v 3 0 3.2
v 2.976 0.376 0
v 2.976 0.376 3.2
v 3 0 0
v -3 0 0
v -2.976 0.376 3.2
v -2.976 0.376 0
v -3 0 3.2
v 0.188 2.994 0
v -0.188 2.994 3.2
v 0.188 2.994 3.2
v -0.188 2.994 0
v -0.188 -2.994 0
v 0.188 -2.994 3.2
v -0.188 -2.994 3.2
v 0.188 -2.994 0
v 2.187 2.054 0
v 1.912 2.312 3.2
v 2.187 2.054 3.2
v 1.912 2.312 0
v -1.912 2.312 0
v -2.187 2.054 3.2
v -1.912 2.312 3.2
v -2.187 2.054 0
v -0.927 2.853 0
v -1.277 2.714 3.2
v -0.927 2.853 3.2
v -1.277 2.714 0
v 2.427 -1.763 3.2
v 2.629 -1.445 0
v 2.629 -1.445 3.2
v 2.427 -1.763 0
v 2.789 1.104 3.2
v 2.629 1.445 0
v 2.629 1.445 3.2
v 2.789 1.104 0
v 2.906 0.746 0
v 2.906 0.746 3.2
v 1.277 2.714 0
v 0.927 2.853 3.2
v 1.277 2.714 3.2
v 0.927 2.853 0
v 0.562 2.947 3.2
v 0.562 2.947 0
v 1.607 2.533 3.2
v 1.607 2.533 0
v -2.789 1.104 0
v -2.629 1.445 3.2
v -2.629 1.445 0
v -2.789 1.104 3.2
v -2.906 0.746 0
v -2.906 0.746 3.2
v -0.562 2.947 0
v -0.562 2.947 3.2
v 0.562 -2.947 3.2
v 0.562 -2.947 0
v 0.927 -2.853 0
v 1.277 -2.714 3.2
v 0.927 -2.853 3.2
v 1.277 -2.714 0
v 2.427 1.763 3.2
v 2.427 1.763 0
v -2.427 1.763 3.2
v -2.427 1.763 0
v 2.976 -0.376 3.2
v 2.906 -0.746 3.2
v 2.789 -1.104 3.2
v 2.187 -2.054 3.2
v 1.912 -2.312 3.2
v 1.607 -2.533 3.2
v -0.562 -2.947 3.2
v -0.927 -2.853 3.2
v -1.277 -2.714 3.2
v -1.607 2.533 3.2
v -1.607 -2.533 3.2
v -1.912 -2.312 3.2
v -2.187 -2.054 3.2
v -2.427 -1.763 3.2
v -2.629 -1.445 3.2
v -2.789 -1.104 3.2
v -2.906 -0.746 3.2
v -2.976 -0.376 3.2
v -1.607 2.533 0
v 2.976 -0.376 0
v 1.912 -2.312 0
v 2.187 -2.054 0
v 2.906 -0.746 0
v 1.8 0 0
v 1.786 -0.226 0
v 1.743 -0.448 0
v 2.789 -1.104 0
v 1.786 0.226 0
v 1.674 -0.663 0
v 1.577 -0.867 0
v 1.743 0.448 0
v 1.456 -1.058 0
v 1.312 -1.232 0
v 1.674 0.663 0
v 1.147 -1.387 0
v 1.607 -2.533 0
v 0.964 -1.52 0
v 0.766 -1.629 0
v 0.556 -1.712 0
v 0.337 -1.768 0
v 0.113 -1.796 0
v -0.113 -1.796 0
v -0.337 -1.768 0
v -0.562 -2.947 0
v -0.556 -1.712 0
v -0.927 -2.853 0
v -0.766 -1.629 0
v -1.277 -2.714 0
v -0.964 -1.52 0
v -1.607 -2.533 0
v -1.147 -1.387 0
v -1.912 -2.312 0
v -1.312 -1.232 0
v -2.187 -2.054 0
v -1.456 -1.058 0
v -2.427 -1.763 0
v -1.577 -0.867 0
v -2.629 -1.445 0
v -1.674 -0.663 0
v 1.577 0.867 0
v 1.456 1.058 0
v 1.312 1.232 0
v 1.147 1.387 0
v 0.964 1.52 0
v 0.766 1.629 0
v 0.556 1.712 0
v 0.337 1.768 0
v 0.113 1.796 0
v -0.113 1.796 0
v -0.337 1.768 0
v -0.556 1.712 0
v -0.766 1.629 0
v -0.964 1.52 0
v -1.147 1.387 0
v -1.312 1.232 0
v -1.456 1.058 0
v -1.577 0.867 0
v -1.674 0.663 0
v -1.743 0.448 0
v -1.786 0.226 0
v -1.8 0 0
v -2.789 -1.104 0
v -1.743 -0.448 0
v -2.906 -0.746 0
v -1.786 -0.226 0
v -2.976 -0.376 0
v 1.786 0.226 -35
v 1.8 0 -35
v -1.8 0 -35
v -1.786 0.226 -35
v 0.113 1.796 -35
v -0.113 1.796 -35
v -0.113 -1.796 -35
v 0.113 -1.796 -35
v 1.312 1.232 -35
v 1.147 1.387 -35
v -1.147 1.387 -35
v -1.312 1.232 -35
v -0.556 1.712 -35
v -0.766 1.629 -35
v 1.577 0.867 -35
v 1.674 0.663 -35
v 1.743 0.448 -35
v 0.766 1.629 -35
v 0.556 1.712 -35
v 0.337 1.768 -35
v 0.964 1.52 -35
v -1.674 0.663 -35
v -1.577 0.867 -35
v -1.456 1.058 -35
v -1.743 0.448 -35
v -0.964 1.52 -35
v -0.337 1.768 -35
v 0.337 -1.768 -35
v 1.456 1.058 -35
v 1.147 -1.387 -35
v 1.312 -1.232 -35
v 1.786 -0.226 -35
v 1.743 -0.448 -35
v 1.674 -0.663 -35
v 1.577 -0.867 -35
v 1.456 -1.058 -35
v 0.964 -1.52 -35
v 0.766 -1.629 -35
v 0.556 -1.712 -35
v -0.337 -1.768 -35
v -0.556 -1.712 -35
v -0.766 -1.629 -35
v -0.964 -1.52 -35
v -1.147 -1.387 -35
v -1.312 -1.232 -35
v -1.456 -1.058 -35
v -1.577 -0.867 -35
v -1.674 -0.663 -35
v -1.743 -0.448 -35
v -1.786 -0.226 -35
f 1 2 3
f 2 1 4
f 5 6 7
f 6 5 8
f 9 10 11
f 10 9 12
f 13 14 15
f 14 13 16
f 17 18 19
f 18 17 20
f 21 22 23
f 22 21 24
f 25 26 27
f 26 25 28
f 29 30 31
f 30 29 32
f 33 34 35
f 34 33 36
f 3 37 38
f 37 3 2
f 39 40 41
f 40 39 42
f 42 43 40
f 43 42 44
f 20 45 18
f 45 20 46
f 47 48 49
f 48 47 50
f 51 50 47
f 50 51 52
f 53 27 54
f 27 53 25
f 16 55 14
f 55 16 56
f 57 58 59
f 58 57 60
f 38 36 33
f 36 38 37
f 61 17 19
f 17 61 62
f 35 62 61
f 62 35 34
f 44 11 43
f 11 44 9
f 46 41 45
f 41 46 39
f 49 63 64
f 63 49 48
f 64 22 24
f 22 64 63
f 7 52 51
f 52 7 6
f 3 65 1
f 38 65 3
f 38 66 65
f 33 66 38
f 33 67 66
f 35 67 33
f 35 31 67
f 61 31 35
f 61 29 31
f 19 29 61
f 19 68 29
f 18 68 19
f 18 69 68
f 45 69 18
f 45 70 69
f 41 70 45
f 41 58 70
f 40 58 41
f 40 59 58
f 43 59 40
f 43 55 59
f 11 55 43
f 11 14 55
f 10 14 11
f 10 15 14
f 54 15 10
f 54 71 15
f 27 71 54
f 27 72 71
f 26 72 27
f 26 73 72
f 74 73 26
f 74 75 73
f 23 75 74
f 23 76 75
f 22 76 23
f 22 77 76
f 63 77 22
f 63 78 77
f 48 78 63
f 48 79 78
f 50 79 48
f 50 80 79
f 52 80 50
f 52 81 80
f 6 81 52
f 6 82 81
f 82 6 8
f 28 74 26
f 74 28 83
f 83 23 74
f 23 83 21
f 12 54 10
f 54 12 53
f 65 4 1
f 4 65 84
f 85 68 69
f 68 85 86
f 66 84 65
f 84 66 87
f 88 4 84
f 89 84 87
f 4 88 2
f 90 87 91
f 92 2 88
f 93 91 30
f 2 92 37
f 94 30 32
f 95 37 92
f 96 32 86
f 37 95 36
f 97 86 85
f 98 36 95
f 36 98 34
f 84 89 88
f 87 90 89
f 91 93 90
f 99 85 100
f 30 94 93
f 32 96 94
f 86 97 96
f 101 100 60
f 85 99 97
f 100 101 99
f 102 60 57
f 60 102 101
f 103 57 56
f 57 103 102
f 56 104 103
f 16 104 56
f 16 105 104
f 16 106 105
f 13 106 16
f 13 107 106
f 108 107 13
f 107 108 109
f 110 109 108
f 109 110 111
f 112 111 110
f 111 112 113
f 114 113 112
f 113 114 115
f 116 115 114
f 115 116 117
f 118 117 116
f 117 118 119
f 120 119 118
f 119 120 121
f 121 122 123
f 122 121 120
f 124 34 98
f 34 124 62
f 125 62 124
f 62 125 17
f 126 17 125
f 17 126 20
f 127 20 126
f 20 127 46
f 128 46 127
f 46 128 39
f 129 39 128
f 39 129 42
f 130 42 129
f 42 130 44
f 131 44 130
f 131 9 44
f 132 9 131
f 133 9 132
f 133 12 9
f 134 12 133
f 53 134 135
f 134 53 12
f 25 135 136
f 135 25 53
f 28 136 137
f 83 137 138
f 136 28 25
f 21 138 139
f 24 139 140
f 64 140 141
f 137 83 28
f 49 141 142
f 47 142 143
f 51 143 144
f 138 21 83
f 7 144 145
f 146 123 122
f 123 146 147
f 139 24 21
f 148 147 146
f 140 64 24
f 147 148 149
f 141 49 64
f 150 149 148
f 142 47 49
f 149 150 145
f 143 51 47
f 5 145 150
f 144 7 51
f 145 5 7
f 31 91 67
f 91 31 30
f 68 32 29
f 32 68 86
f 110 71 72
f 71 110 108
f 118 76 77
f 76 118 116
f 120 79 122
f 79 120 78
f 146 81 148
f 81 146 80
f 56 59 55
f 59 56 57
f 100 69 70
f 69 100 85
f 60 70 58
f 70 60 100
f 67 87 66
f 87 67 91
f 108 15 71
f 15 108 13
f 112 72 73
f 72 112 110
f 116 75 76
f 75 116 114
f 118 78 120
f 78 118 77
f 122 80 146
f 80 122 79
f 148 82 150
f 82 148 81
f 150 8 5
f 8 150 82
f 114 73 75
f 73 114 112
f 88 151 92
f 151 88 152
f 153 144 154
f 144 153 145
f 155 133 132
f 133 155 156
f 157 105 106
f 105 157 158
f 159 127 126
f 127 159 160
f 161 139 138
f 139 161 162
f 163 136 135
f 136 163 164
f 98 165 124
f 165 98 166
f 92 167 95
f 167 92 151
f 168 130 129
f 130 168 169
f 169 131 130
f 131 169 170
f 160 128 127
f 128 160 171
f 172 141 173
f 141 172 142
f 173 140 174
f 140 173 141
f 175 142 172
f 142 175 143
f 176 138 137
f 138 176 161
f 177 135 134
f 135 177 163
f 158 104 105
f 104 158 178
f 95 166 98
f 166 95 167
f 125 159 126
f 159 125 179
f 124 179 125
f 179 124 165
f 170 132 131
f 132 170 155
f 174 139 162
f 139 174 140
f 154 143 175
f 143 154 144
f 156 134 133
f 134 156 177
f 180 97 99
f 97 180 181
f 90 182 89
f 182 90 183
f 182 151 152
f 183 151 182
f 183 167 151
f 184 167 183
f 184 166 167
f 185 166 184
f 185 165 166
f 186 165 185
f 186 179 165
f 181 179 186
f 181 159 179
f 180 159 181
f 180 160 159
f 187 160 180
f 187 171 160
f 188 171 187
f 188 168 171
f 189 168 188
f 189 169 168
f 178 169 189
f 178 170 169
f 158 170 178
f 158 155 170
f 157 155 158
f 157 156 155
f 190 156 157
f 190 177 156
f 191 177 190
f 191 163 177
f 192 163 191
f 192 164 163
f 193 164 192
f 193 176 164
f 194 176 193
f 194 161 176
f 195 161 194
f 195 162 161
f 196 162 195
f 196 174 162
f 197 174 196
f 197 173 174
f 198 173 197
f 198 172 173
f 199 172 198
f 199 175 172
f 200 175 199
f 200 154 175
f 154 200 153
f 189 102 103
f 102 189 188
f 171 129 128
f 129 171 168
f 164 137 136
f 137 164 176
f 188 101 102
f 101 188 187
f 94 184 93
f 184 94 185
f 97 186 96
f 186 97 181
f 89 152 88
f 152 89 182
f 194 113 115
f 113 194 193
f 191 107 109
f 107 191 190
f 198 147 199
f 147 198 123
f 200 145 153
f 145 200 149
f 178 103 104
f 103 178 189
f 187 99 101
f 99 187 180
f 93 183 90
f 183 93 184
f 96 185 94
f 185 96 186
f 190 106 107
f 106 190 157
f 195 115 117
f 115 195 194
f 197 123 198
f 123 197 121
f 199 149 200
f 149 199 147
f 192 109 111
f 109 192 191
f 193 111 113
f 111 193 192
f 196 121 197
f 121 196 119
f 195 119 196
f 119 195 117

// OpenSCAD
$fn = 50;


difference() {
	union() {
		translate(v = [0, 0, 0]) {
			rotate(a = [0, 0, 0]) {
				cylinder(h = 3.2000000000, r = 3.0000000000);
			}
		}
		translate(v = [0, 0, -35]) {
			rotate(a = [0, 0, 0]) {
				cylinder(h = 35, r = 1.8000000000);
			}
		}
	}
	union();
}
